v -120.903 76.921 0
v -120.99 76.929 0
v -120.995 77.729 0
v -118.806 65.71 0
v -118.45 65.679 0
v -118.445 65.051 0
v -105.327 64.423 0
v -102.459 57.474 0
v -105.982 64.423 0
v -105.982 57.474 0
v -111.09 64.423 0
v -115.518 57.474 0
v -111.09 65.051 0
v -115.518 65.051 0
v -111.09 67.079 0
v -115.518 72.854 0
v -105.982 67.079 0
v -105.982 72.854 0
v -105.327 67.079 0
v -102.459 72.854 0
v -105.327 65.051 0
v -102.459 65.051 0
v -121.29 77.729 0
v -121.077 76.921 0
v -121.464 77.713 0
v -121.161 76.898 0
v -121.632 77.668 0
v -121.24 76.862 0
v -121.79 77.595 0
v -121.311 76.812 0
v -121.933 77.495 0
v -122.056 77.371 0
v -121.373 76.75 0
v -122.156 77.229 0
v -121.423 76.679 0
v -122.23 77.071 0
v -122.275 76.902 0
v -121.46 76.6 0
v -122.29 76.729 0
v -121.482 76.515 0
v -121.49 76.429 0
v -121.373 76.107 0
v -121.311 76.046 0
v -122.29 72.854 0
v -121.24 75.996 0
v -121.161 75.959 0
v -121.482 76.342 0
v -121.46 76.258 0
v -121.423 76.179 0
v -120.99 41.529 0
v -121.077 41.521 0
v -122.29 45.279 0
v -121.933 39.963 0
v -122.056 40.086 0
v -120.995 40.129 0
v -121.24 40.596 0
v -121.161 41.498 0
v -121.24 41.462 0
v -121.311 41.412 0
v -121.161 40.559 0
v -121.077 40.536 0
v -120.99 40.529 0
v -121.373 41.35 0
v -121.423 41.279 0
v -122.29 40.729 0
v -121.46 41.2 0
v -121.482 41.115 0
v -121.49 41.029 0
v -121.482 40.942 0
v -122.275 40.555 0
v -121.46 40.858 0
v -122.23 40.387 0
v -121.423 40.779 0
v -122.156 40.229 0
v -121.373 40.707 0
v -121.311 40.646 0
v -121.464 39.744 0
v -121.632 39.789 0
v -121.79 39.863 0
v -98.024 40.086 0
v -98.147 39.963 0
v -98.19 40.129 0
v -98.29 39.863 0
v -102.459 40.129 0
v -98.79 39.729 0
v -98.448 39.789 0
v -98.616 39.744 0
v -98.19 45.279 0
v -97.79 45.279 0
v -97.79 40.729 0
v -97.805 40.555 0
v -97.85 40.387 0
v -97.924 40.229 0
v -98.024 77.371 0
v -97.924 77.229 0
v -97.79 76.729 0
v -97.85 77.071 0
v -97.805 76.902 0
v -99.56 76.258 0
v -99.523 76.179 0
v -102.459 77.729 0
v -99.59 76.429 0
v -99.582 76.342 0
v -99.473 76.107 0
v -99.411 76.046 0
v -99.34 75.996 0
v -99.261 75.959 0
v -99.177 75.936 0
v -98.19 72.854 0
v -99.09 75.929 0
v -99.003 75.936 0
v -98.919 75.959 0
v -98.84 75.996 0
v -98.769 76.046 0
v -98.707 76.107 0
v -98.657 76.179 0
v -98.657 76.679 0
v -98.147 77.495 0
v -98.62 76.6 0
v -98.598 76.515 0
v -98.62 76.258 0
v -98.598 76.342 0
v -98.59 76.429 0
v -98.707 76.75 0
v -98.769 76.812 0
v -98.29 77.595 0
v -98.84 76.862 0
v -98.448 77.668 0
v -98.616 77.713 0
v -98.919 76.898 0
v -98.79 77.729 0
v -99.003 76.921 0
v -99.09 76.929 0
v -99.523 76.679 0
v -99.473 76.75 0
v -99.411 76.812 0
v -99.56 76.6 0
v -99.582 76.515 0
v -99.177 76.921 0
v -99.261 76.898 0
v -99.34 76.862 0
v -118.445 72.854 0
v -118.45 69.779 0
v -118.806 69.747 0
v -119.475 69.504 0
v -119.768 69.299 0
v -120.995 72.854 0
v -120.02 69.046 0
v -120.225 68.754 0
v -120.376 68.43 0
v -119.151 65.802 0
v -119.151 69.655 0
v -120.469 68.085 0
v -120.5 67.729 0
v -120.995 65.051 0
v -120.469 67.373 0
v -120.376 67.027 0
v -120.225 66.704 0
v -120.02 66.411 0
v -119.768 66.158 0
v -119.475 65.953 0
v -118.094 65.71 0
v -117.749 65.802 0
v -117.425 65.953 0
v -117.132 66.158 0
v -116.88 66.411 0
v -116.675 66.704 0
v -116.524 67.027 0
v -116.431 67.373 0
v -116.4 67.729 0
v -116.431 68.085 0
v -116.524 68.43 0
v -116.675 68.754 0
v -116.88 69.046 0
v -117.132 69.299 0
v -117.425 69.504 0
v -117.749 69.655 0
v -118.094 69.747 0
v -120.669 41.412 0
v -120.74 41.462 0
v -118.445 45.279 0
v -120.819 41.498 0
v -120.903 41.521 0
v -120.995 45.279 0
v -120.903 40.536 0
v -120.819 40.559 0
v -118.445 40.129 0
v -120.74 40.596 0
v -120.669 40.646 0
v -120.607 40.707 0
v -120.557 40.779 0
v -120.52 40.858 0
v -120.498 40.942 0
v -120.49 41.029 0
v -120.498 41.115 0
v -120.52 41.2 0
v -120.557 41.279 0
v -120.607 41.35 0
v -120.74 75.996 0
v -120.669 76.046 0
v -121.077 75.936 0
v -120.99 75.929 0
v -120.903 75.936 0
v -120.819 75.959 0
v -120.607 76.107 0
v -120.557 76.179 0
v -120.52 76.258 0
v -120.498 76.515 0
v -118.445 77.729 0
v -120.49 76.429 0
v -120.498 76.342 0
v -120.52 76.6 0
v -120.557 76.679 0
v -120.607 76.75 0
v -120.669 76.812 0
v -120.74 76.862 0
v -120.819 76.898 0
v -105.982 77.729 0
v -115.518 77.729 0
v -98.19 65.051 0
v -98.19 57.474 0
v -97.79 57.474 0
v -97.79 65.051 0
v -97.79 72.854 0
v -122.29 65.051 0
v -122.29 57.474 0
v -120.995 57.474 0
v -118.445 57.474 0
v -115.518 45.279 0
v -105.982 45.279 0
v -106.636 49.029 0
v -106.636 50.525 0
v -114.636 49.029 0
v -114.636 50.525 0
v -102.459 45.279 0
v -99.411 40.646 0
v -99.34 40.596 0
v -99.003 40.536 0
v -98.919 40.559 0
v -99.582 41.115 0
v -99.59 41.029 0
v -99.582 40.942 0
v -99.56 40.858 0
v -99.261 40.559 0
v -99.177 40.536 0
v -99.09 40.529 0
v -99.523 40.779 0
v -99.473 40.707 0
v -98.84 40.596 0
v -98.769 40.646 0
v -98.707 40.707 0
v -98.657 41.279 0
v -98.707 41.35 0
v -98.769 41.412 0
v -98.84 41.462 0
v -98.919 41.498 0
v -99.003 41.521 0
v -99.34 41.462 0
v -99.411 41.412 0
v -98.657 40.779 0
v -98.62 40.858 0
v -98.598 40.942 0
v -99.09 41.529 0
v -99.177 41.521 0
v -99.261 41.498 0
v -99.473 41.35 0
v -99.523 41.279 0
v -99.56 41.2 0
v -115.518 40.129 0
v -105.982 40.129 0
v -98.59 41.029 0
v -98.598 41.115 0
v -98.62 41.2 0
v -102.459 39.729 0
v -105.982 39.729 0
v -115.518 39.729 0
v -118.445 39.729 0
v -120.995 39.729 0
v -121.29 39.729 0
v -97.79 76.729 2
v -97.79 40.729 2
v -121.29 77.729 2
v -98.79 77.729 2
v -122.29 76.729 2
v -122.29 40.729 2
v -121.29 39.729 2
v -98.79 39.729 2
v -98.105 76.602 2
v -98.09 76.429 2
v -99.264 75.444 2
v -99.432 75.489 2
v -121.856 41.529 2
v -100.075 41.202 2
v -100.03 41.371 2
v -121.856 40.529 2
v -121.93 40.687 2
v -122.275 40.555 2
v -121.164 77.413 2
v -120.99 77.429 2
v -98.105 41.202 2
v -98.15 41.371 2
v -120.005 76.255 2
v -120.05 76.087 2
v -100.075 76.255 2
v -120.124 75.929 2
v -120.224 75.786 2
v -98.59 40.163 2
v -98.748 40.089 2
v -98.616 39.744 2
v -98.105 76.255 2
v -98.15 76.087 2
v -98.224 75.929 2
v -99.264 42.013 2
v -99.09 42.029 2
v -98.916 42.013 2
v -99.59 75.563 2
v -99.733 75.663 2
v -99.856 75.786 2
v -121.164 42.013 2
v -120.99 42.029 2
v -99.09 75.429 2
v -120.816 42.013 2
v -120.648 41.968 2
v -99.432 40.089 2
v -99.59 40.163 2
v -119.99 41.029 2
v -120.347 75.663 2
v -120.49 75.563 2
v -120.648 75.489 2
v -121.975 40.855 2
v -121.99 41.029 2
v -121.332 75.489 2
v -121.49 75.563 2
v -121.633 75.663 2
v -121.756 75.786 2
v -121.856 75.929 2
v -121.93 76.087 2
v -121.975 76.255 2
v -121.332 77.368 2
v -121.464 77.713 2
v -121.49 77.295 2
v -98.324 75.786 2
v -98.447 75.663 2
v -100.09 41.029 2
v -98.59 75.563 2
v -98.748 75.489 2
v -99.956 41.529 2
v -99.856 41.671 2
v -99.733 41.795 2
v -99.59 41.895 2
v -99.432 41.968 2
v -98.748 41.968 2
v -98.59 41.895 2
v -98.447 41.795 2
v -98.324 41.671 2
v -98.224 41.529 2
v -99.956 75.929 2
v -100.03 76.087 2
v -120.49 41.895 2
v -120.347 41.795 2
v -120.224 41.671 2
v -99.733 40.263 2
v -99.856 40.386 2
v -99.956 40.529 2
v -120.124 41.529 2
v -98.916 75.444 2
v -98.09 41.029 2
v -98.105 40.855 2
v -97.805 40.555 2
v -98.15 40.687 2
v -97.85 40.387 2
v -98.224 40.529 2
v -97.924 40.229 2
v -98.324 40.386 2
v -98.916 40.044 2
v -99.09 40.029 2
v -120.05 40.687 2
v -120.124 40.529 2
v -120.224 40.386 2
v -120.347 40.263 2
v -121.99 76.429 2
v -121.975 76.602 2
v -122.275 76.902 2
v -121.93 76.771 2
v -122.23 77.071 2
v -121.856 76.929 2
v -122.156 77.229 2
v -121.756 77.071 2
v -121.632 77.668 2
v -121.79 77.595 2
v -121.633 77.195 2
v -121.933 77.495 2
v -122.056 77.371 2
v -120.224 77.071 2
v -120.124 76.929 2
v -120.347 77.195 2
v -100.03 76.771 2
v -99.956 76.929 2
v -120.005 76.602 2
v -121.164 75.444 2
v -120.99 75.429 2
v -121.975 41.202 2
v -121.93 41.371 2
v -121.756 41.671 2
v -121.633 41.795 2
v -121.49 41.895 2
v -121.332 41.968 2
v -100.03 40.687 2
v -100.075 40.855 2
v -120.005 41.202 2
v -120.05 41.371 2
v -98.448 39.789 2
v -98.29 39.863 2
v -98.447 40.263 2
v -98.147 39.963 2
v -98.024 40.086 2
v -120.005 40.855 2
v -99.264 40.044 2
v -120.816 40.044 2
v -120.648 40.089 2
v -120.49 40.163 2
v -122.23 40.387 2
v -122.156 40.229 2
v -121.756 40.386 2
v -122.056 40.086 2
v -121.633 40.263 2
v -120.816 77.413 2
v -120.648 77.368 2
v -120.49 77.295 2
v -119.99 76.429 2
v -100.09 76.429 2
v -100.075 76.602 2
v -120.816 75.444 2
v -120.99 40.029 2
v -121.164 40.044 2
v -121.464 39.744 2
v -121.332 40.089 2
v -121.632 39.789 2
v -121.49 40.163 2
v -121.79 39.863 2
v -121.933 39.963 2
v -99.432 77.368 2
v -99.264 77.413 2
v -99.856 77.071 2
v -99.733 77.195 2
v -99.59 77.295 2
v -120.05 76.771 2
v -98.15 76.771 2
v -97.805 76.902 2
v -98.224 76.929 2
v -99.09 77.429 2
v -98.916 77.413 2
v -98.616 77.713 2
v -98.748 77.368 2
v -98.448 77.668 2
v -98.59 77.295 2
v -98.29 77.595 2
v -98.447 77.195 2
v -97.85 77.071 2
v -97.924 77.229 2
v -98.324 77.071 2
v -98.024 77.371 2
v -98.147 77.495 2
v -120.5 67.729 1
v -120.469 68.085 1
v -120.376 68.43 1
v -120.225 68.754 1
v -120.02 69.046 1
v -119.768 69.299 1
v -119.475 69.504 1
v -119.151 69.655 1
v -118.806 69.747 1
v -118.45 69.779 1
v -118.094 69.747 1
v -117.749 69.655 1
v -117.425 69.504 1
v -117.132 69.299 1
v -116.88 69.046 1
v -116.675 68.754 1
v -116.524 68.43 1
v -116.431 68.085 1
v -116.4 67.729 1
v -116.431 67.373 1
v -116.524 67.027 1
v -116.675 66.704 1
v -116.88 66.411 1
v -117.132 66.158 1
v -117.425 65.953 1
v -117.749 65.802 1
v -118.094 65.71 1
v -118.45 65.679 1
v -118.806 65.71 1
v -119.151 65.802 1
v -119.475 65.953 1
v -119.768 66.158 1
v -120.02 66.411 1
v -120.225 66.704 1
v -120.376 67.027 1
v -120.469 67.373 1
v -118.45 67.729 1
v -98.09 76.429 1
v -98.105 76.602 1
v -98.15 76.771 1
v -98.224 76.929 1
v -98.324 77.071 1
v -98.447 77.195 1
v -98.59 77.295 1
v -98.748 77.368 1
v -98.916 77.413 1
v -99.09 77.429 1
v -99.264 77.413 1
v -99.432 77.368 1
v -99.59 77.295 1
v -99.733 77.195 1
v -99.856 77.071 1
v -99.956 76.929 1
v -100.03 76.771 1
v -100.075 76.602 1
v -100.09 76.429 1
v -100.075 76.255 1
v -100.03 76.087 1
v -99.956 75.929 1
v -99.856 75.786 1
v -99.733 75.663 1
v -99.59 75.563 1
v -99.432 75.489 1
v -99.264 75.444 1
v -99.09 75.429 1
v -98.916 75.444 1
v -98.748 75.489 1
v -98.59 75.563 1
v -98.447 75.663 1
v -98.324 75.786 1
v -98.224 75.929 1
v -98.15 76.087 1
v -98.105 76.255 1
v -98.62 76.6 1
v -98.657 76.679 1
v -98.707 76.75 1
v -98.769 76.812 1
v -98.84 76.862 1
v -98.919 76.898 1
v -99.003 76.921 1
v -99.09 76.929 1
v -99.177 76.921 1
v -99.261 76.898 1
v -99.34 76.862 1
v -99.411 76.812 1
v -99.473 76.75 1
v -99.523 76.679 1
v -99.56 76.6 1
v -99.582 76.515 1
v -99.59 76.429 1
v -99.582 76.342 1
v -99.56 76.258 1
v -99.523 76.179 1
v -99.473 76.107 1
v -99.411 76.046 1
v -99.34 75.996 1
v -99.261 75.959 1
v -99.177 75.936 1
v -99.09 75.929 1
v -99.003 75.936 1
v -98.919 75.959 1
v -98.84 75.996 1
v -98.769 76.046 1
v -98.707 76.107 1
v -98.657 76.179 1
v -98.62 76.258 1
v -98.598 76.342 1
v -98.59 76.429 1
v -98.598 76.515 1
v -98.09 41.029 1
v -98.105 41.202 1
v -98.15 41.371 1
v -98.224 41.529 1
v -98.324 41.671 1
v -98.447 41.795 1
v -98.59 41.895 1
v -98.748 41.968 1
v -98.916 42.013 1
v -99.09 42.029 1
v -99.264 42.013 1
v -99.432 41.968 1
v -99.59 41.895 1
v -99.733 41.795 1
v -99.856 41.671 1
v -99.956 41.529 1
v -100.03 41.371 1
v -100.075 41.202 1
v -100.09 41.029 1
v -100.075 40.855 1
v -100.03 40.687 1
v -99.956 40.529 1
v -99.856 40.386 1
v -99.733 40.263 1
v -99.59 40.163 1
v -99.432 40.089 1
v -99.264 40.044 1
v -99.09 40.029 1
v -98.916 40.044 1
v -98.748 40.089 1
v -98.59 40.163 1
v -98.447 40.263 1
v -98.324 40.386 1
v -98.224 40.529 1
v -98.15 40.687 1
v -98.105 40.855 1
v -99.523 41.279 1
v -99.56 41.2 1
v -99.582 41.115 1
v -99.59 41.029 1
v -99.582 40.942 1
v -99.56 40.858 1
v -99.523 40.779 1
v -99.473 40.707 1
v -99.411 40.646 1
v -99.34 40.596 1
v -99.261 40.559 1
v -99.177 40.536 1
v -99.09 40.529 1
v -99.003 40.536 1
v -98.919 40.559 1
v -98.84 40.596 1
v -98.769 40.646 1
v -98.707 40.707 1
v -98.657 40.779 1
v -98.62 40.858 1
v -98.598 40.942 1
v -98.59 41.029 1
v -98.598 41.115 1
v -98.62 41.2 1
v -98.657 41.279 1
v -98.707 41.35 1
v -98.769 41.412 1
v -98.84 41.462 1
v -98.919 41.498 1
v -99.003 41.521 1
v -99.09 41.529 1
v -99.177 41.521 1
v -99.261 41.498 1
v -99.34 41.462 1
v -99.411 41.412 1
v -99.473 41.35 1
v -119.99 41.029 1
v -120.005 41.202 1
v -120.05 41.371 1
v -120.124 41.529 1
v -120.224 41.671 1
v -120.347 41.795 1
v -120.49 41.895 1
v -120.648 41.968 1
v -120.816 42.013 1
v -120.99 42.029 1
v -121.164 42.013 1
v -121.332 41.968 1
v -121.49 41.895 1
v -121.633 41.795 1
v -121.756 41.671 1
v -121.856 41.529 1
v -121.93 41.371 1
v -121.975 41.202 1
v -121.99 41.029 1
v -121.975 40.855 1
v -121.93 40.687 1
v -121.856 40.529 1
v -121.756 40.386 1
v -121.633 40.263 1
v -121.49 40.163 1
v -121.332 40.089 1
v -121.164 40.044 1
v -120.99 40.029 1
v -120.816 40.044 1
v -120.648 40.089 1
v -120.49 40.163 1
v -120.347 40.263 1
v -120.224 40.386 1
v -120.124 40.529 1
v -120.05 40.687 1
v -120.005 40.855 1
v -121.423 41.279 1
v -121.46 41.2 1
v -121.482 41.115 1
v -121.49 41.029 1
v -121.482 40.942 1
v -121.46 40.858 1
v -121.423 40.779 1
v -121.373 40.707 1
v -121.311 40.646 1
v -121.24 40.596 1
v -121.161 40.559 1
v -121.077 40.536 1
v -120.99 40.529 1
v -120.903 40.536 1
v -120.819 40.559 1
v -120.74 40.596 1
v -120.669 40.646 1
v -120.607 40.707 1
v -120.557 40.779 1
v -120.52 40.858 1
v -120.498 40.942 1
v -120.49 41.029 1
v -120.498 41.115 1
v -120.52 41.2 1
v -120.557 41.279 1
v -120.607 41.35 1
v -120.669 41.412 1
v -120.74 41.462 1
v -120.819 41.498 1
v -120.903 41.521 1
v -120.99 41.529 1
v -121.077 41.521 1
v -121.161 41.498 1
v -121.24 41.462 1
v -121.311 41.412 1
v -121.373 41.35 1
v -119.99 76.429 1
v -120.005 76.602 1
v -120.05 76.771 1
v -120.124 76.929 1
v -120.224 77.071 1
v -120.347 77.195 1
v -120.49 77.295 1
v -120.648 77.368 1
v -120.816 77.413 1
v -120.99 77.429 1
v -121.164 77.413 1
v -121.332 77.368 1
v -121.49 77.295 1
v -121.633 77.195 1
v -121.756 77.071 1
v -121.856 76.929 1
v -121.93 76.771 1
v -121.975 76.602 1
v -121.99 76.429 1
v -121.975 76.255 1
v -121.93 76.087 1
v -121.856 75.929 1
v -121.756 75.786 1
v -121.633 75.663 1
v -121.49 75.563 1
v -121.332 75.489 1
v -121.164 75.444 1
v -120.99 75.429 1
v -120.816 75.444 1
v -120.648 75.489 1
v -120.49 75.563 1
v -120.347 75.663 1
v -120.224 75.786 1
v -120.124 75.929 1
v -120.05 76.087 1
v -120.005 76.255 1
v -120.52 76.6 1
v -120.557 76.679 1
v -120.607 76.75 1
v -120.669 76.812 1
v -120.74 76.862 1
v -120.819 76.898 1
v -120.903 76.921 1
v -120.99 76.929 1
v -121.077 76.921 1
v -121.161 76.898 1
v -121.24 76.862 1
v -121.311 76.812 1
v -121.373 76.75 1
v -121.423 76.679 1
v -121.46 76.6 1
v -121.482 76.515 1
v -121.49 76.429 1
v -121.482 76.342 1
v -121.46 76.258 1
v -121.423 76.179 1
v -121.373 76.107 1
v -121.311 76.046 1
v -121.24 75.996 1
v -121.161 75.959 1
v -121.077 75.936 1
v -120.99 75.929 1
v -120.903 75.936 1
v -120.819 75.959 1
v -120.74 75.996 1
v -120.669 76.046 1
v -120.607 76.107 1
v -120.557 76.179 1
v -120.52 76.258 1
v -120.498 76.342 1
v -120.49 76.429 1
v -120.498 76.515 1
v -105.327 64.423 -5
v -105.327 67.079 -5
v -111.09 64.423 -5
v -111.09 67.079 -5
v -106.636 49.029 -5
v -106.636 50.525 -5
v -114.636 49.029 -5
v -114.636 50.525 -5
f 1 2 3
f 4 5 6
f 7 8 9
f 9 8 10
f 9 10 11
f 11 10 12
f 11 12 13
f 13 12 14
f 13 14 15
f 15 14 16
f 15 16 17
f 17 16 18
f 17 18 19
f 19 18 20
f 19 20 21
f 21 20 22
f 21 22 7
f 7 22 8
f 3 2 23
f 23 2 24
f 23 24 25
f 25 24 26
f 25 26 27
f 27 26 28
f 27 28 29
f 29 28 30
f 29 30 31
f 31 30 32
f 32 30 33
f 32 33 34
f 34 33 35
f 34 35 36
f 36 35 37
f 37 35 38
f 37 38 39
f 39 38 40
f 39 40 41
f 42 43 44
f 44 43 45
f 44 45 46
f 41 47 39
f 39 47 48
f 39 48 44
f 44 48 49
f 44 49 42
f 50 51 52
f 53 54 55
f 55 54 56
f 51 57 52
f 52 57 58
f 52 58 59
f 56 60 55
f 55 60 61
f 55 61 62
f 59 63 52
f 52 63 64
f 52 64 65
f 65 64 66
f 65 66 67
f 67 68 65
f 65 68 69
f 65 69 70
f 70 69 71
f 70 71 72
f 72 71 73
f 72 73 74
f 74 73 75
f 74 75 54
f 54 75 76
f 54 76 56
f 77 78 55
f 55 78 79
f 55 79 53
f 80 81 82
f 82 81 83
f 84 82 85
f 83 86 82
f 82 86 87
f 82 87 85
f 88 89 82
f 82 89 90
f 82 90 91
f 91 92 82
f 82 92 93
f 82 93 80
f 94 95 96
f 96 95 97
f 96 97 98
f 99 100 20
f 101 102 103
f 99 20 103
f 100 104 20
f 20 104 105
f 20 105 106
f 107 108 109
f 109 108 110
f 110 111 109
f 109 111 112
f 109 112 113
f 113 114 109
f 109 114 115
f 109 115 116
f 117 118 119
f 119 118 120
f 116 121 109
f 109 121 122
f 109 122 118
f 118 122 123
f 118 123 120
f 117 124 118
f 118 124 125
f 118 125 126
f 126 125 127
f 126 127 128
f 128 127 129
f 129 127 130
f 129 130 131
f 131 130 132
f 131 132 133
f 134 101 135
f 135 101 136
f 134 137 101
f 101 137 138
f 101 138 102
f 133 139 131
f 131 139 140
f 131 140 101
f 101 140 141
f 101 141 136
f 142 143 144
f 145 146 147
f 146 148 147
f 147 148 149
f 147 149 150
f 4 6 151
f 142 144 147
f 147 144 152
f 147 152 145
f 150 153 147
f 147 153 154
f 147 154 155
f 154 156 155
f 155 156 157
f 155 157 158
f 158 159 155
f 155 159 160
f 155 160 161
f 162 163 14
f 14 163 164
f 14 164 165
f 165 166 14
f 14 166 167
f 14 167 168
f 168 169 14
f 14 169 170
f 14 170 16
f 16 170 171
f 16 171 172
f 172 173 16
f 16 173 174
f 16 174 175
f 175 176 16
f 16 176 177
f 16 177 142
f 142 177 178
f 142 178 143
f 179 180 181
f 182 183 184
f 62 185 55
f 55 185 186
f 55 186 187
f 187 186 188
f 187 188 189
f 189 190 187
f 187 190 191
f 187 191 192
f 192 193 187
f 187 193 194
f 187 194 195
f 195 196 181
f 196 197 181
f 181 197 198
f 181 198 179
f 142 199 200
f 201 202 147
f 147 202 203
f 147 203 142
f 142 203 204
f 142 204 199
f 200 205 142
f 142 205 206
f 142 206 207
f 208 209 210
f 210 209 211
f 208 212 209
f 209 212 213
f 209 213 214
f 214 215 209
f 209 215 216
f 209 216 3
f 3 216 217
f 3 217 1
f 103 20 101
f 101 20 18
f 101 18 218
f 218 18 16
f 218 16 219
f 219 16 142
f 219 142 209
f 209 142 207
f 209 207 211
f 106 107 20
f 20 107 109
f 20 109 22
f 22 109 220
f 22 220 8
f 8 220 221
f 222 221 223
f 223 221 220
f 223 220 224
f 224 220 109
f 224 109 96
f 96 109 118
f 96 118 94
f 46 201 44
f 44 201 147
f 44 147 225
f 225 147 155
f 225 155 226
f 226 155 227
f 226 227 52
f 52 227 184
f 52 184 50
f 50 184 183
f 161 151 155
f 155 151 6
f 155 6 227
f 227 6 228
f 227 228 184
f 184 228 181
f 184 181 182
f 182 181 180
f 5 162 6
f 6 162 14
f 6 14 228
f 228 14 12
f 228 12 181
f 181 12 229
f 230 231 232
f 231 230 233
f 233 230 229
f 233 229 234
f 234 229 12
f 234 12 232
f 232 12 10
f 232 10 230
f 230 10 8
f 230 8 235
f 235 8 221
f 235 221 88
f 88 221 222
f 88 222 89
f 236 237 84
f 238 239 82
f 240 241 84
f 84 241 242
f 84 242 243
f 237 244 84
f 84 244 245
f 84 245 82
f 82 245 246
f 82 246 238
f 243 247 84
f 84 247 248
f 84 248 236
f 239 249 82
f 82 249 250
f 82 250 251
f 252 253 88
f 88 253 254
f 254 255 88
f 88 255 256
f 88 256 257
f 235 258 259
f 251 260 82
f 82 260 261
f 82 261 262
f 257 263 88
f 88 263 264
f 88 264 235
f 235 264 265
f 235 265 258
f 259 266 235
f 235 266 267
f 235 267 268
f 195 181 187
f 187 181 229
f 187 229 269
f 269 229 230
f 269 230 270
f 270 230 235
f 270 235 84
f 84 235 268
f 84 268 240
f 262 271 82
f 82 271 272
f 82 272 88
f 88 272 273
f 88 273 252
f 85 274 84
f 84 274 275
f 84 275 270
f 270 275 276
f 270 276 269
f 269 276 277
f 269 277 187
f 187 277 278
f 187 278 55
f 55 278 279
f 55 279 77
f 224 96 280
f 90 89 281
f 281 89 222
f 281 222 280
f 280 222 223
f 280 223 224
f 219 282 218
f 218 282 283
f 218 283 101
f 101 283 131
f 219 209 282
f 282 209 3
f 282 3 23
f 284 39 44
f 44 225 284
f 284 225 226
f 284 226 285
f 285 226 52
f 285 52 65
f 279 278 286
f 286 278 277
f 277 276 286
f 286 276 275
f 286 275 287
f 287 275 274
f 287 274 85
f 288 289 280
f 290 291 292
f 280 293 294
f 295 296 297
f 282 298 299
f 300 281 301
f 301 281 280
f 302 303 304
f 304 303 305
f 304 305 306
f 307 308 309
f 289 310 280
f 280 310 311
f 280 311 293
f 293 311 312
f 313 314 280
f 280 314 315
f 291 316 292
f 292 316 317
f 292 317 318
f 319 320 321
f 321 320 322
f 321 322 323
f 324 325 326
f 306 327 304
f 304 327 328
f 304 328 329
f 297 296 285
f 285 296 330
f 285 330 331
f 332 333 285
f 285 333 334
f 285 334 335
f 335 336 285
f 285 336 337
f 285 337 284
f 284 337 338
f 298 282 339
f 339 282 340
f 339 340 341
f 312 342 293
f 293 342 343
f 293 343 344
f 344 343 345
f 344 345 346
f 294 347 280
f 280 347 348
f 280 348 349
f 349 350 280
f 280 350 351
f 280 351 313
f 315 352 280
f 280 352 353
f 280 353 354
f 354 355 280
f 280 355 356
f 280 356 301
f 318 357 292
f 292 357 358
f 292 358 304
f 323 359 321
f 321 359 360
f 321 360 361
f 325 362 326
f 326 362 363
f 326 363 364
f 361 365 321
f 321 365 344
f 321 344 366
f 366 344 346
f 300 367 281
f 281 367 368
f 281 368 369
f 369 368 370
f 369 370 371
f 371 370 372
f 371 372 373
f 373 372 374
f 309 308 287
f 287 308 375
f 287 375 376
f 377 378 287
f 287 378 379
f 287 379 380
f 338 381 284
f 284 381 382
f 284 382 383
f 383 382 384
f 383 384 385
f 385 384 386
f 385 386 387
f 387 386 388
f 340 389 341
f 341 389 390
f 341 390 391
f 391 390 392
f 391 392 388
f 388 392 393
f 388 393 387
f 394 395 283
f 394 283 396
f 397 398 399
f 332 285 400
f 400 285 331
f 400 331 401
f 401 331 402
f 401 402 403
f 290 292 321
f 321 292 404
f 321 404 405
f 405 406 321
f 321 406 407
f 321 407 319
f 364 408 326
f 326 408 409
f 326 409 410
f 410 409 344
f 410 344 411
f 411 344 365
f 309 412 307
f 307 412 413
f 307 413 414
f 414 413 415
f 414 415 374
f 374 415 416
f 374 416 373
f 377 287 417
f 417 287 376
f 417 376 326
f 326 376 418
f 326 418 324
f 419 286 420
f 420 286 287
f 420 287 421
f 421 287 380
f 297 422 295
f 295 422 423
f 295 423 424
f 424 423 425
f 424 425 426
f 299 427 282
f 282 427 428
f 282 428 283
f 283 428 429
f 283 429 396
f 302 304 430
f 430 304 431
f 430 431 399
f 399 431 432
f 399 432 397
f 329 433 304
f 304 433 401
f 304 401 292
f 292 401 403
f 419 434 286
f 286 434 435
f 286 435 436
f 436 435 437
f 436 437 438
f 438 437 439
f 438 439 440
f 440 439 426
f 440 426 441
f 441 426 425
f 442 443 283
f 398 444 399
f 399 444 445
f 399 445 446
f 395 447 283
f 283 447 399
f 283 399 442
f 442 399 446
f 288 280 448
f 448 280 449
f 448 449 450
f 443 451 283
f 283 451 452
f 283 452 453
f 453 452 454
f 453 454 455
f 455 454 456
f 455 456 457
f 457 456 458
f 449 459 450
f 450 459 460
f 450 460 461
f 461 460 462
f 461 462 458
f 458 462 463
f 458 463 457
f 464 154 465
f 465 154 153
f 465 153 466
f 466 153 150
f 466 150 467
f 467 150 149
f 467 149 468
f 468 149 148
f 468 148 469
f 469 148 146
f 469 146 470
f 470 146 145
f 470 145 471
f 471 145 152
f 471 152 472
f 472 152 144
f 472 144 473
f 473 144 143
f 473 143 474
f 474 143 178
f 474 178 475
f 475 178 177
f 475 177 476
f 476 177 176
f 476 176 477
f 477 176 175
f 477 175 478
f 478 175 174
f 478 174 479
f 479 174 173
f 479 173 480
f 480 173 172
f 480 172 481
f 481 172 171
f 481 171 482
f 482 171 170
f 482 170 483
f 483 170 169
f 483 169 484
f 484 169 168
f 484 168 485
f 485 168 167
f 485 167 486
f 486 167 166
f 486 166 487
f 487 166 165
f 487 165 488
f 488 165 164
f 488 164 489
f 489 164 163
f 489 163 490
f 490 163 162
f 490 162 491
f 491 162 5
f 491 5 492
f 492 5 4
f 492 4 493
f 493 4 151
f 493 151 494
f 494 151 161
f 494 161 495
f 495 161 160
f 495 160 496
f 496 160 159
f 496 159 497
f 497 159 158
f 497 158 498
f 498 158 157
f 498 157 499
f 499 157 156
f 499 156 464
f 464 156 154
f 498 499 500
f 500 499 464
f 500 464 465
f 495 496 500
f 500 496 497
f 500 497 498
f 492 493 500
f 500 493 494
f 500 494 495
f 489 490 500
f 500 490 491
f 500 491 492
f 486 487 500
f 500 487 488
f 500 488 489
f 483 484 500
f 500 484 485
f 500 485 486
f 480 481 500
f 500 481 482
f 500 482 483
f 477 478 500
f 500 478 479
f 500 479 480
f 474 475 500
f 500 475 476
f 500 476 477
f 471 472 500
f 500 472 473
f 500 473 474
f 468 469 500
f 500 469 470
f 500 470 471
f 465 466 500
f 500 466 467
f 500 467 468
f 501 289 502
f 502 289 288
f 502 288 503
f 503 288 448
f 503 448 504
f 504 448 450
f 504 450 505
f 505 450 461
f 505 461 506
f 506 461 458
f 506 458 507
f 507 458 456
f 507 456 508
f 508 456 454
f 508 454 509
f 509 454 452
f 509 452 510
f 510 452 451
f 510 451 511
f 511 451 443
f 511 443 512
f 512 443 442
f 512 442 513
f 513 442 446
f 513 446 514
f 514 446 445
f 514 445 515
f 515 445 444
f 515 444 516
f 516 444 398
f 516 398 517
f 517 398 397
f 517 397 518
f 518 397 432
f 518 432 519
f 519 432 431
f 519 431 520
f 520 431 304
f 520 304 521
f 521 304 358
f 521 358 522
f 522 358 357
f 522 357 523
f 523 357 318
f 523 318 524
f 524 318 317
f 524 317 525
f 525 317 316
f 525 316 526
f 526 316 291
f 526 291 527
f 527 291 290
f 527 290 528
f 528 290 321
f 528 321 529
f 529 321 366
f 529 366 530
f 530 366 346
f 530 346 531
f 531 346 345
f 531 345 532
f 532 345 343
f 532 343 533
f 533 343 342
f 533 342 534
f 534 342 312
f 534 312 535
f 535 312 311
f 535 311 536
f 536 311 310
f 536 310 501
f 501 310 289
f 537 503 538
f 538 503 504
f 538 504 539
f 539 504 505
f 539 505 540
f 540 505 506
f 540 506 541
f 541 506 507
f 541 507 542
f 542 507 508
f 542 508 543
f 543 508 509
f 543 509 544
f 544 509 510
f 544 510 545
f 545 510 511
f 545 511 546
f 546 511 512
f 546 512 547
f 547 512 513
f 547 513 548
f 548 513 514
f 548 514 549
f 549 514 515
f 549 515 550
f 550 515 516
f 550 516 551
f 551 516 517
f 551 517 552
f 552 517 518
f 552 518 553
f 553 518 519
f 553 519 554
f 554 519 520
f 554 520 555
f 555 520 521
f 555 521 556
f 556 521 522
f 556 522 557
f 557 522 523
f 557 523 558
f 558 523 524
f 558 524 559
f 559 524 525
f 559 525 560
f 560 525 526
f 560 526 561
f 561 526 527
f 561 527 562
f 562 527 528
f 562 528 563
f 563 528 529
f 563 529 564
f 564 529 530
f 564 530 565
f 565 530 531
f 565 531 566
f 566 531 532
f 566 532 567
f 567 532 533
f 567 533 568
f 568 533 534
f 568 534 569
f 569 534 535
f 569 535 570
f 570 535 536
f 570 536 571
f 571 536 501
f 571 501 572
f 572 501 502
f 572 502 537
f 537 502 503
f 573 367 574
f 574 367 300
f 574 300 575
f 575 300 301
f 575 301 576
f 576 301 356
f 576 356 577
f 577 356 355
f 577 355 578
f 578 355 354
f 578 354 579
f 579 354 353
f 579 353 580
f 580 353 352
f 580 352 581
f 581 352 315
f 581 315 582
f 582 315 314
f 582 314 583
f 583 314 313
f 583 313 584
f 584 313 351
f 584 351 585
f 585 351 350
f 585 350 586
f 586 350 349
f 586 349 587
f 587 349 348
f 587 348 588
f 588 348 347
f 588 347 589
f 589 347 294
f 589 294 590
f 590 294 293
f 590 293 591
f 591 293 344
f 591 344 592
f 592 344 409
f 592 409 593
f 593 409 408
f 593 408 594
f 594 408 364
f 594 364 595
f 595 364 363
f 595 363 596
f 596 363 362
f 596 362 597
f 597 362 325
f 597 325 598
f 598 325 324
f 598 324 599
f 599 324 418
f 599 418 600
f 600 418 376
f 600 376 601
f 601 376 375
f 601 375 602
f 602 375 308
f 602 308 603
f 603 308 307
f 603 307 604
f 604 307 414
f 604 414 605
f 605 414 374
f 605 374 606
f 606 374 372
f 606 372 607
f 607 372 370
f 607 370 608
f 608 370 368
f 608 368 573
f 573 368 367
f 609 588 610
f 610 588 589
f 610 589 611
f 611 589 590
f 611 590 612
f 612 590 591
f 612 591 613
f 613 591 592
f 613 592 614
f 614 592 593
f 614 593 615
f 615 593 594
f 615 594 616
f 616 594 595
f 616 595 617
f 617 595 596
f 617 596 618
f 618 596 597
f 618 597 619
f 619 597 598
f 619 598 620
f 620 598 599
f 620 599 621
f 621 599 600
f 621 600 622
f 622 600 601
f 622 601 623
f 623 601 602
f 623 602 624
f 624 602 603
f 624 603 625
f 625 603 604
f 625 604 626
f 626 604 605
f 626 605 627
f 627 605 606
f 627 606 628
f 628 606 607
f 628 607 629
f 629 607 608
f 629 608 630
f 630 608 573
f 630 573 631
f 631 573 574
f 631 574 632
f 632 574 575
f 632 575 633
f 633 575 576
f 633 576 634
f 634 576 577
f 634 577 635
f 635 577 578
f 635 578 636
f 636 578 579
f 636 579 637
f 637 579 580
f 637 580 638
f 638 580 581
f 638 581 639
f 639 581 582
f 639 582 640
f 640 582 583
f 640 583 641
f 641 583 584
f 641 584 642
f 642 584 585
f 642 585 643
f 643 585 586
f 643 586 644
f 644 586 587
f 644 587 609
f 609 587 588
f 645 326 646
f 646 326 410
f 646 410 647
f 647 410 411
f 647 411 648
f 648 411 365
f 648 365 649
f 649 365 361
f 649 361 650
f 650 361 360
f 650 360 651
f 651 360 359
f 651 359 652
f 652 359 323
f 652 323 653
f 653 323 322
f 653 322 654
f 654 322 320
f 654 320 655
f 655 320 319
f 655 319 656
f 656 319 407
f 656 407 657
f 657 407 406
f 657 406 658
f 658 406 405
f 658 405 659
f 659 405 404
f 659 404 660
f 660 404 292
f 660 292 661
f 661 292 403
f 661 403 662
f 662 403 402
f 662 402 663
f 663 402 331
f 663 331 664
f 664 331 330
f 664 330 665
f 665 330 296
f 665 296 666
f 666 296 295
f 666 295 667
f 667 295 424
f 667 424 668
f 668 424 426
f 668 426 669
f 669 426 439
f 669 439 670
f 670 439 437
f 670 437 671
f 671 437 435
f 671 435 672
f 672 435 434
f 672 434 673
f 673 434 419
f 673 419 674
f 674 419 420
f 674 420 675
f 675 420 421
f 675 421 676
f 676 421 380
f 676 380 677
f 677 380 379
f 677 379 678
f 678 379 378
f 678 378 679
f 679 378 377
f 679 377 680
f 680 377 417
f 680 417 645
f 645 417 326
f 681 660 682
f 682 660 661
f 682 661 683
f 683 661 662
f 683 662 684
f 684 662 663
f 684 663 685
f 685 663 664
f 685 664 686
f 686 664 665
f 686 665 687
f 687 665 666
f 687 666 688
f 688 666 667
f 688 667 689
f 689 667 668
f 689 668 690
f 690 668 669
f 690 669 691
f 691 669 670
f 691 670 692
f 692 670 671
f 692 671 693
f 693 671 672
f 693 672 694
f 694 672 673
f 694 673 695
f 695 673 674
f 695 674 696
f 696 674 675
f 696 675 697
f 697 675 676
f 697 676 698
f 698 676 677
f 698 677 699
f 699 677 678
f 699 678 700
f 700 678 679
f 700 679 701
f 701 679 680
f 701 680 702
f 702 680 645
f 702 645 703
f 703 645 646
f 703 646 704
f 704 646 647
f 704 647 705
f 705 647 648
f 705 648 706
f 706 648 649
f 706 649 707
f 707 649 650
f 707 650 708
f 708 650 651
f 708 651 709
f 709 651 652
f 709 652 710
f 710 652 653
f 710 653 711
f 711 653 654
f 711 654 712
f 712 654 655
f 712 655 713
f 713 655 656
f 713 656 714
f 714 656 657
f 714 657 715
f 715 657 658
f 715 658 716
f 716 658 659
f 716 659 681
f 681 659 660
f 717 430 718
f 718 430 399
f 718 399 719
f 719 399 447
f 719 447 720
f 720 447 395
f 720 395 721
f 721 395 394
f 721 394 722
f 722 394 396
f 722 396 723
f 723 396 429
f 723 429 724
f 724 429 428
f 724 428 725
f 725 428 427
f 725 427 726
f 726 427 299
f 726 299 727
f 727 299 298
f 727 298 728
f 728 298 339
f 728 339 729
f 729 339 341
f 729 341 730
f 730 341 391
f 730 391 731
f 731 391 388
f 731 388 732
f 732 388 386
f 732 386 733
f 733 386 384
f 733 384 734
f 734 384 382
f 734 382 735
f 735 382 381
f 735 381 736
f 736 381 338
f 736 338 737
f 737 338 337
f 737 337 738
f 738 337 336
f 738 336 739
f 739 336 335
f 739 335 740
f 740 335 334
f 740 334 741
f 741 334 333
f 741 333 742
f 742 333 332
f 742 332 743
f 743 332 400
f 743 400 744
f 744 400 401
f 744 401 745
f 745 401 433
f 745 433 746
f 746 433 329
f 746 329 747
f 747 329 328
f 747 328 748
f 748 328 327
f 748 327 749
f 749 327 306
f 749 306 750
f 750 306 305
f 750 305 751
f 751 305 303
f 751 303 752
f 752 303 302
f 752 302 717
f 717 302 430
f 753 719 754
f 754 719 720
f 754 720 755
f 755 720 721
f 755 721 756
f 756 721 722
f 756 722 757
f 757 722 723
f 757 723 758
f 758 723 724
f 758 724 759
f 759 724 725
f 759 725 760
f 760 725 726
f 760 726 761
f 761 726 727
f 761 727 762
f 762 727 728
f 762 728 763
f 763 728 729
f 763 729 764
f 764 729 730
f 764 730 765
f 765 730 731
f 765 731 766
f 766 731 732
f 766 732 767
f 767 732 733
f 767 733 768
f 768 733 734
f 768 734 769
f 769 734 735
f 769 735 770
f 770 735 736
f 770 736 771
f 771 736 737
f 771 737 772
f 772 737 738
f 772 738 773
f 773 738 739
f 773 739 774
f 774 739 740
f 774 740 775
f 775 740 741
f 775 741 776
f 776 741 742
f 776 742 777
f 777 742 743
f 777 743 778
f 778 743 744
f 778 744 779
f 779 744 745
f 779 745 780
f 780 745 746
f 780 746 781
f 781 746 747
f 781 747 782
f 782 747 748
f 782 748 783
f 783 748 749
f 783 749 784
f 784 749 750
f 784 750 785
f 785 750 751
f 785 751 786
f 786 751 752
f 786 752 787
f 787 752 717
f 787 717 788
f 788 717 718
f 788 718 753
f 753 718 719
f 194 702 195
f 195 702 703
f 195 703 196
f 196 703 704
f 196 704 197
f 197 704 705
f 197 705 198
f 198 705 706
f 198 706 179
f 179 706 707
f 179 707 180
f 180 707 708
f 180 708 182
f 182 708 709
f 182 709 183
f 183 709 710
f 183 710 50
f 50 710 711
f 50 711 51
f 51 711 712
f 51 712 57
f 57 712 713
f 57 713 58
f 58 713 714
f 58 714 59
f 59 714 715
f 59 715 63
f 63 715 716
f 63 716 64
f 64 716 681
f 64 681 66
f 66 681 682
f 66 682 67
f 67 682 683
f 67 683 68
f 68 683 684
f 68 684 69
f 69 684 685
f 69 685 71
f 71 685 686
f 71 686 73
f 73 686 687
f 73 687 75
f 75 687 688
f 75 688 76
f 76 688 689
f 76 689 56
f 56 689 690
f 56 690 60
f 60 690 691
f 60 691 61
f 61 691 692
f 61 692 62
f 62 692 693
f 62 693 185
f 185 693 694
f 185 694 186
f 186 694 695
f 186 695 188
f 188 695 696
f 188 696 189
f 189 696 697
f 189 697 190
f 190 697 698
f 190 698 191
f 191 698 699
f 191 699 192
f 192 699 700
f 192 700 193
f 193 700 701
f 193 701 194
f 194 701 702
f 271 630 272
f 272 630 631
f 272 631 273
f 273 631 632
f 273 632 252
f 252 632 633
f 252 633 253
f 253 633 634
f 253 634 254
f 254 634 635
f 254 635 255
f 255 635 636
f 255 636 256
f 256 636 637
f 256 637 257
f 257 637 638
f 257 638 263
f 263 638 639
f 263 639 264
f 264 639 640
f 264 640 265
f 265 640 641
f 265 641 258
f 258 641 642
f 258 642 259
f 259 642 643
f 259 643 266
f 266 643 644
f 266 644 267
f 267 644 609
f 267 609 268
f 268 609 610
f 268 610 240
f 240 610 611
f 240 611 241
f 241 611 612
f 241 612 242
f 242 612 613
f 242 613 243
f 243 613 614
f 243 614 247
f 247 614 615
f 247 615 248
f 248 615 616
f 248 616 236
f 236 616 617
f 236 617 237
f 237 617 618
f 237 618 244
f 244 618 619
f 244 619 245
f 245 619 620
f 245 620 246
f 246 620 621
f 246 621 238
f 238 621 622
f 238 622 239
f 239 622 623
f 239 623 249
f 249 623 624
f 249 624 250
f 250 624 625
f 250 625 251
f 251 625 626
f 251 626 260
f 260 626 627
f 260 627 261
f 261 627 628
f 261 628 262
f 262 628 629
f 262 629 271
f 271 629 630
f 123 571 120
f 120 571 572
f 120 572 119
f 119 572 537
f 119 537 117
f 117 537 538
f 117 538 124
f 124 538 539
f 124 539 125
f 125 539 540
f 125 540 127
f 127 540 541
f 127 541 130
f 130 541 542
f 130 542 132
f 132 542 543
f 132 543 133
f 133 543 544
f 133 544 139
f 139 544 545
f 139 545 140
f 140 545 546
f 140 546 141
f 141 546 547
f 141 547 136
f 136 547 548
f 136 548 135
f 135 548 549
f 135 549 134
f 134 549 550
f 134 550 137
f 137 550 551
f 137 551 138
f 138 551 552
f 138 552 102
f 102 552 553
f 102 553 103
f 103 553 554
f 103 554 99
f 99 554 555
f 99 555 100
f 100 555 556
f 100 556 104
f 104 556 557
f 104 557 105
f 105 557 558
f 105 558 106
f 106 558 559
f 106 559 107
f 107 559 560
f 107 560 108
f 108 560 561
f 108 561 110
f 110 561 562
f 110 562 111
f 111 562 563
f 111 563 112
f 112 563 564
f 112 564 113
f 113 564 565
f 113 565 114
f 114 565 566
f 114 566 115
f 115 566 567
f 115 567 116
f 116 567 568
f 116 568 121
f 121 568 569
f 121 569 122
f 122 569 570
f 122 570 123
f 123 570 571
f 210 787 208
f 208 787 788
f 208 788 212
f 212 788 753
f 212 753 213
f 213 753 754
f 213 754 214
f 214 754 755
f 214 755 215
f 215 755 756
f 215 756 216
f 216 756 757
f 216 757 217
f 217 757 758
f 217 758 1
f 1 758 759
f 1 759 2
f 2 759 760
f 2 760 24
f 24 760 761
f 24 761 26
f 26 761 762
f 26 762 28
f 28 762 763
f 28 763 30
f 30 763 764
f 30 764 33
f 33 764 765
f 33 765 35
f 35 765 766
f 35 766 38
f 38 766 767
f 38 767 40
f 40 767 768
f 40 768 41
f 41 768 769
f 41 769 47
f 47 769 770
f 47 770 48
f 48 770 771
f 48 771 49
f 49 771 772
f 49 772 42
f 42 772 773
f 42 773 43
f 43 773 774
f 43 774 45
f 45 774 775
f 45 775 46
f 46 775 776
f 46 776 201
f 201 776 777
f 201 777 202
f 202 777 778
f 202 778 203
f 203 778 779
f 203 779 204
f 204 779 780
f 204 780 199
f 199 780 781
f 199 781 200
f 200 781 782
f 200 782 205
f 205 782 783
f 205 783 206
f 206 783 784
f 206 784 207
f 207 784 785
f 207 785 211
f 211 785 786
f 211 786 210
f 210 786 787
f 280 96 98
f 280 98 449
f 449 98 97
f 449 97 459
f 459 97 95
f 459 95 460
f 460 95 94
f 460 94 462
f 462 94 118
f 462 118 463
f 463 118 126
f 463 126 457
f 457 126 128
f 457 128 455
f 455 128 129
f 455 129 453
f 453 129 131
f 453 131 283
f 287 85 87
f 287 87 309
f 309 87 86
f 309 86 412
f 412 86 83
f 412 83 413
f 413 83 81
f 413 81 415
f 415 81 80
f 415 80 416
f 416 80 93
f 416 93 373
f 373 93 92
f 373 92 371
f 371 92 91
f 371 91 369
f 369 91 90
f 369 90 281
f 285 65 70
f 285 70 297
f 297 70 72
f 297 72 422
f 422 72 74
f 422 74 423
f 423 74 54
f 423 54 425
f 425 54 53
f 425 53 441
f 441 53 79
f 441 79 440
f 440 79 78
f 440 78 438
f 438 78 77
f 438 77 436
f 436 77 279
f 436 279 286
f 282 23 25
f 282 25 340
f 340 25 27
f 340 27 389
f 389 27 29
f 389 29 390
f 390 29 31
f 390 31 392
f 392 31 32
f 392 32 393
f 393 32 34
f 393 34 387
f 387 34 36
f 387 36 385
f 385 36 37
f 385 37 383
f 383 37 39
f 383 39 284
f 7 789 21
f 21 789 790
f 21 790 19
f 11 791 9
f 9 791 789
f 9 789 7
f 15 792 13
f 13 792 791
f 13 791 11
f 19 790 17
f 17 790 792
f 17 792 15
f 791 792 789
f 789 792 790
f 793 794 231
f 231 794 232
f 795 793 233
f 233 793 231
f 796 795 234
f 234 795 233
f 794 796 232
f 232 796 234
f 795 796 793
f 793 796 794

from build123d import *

# Parameters (mm, degrees)
SKETCH_1_W          = 24.5
SKETCH_1_H          = 38
EXTRUDE_1_DEPTH     = 2
SKETCH_4_R          = 2.05
CUT_EXTRUDE_1_DEPTH = 1
SKETCH_9_R          = 1
CUT_EXTRUDE_3_DEPTH = 1
CUT_EXTRUDE_4_REACH = 146.905
SKETCH_10_R         = 0.5
FILLET_1_R          = 1
SKETCH_11_W         = 5.762947655
SKETCH_11_H         = 2.6557086
EXTRUDE_2_DEPTH     = 5
SKETCH_12_W         = 8
SKETCH_12_H         = 1.496173859
EXTRUDE_3_DEPTH     = 5


with BuildPart() as part:
    # Sketch 1 → Extrude 1 (new body)
    with BuildSketch(Plane.XY):
        with Locations((-110.040086771, 58.72858385)):
            Rectangle(SKETCH_1_W, SKETCH_1_H)
    extrude(amount=EXTRUDE_1_DEPTH)

    # Sketch 4 → Cut-Extrude 1 (cut)
    with BuildSketch(Plane(origin=(0, 0, 0), x_dir=(-1, 0, 0), z_dir=(0, 0, -1))):
        with Locations((118.450086771, 67.72858385)):
            Circle(SKETCH_4_R)
    extrude(amount=-CUT_EXTRUDE_1_DEPTH, mode=Mode.SUBTRACT)

    # Sketch 9 → Cut-Extrude 3 (cut)
    with BuildSketch(Plane.XY.offset(2)):
        with Locations((-99.090086771, 76.42858385)):
            Circle(SKETCH_9_R)
        with Locations((-99.090086771, 41.02858385)):
            Circle(SKETCH_9_R)
        with Locations((-120.990086771, 41.02858385)):
            Circle(SKETCH_9_R)
        with Locations((-120.990086771, 76.42858385)):
            Circle(SKETCH_9_R)
    extrude(amount=-CUT_EXTRUDE_3_DEPTH, mode=Mode.SUBTRACT)

    # Sketch 10 → Cut-Extrude 4 (cut, up to next)
    with BuildSketch(Plane.XY.offset(1), mode=Mode.PRIVATE) as cut_extrude_4_sk1:
        with Locations((-120.990086771, 41.02858385)):
            Circle(SKETCH_10_R)
    cut_extrude_4_tool1 = extrude(cut_extrude_4_sk1.sketch, amount=-CUT_EXTRUDE_4_REACH, mode=Mode.PRIVATE) & part.part
    # Sketch 10 → Cut-Extrude 4 (cut, up to next)
    with BuildSketch(Plane.XY.offset(1), mode=Mode.PRIVATE) as cut_extrude_4_sk2:
        with Locations((-99.090086771, 41.02858385)):
            Circle(SKETCH_10_R)
    cut_extrude_4_tool2 = extrude(cut_extrude_4_sk2.sketch, amount=-CUT_EXTRUDE_4_REACH, mode=Mode.PRIVATE) & part.part
    # Sketch 10 → Cut-Extrude 4 (cut, up to next)
    with BuildSketch(Plane.XY.offset(1), mode=Mode.PRIVATE) as cut_extrude_4_sk3:
        with Locations((-99.090086771, 76.42858385)):
            Circle(SKETCH_10_R)
    cut_extrude_4_tool3 = extrude(cut_extrude_4_sk3.sketch, amount=-CUT_EXTRUDE_4_REACH, mode=Mode.PRIVATE) & part.part
    # Sketch 10 → Cut-Extrude 4 (cut, up to next)
    with BuildSketch(Plane.XY.offset(1), mode=Mode.PRIVATE) as cut_extrude_4_sk4:
        with Locations((-120.990086771, 76.42858385)):
            Circle(SKETCH_10_R)
    cut_extrude_4_tool4 = extrude(cut_extrude_4_sk4.sketch, amount=-CUT_EXTRUDE_4_REACH, mode=Mode.PRIVATE) & part.part
    add(cut_extrude_4_tool1.solids().sort_by_distance((-120.990087, 41.028584, 1))[0], mode=Mode.SUBTRACT)
    add(cut_extrude_4_tool2.solids().sort_by_distance((-99.090087, 41.028584, 1))[0], mode=Mode.SUBTRACT)
    add(cut_extrude_4_tool3.solids().sort_by_distance((-99.090087, 76.428584, 1))[0], mode=Mode.SUBTRACT)
    add(cut_extrude_4_tool4.solids().sort_by_distance((-120.990087, 76.428584, 1))[0], mode=Mode.SUBTRACT)

    # Fillet 1
    fillet_1_edges = [part.edges().sort_by_distance(p)[0] for p in [
        (-97.790086771, 39.72858385, 1),
        (-122.290086771, 39.72858385, 1),
        (-122.290086771, 77.72858385, 1),
        (-97.790086771, 77.72858385, 1),
    ]]
    fillet(fillet_1_edges, radius=FILLET_1_R)

    # Sketch 11 → Extrude 2 (add)
    with BuildSketch(Plane(origin=(0, 0, 0), x_dir=(-1, 0, 0), z_dir=(0, 0, -1))):
        with Locations((108.208612944, 65.75072955)):
            Rectangle(SKETCH_11_W, SKETCH_11_H)
    extrude(amount=EXTRUDE_2_DEPTH)

    # Sketch 12 → Extrude 3 (add)
    with BuildSketch(Plane(origin=(0, 0, 0), x_dir=(-1, 0, 0), z_dir=(0, 0, -1))):
        with Locations((110.636291242, 49.77667078)):
            Rectangle(SKETCH_12_W, SKETCH_12_H)
    extrude(amount=EXTRUDE_3_DEPTH)


solid = part.part
